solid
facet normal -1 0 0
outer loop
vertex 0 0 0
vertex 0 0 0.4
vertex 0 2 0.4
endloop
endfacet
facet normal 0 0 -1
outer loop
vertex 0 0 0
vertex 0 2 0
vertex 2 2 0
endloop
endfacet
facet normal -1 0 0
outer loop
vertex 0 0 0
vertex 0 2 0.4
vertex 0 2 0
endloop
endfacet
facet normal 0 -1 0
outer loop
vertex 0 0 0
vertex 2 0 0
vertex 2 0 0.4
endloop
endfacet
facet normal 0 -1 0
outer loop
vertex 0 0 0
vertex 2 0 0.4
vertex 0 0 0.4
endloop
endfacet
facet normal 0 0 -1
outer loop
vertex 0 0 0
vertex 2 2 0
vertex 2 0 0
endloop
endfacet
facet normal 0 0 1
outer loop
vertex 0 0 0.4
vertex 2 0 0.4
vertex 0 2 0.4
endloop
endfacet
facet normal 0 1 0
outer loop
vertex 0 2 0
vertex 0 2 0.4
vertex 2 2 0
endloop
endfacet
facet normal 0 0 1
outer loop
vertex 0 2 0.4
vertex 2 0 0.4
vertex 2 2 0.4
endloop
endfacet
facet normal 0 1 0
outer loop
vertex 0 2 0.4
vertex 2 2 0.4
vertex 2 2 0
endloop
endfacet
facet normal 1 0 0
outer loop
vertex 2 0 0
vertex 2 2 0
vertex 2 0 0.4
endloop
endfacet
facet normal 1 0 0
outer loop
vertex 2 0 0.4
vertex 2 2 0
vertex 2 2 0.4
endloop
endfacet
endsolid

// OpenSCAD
/* Warning, this is a very basic generator with a lot of approximation 
input data : [X2DFN, K9A, 2x2x0.4mm, 10, , A, C04-01187A]
generated by com.zoubworld.electronics.cad.model3d.Basic
Date : Sun Feb 15 10:50:49 CET 2026
*/

//body
color("black")
translate([0,0,0])
cube([2.0,2.0,0.4], center=false);
